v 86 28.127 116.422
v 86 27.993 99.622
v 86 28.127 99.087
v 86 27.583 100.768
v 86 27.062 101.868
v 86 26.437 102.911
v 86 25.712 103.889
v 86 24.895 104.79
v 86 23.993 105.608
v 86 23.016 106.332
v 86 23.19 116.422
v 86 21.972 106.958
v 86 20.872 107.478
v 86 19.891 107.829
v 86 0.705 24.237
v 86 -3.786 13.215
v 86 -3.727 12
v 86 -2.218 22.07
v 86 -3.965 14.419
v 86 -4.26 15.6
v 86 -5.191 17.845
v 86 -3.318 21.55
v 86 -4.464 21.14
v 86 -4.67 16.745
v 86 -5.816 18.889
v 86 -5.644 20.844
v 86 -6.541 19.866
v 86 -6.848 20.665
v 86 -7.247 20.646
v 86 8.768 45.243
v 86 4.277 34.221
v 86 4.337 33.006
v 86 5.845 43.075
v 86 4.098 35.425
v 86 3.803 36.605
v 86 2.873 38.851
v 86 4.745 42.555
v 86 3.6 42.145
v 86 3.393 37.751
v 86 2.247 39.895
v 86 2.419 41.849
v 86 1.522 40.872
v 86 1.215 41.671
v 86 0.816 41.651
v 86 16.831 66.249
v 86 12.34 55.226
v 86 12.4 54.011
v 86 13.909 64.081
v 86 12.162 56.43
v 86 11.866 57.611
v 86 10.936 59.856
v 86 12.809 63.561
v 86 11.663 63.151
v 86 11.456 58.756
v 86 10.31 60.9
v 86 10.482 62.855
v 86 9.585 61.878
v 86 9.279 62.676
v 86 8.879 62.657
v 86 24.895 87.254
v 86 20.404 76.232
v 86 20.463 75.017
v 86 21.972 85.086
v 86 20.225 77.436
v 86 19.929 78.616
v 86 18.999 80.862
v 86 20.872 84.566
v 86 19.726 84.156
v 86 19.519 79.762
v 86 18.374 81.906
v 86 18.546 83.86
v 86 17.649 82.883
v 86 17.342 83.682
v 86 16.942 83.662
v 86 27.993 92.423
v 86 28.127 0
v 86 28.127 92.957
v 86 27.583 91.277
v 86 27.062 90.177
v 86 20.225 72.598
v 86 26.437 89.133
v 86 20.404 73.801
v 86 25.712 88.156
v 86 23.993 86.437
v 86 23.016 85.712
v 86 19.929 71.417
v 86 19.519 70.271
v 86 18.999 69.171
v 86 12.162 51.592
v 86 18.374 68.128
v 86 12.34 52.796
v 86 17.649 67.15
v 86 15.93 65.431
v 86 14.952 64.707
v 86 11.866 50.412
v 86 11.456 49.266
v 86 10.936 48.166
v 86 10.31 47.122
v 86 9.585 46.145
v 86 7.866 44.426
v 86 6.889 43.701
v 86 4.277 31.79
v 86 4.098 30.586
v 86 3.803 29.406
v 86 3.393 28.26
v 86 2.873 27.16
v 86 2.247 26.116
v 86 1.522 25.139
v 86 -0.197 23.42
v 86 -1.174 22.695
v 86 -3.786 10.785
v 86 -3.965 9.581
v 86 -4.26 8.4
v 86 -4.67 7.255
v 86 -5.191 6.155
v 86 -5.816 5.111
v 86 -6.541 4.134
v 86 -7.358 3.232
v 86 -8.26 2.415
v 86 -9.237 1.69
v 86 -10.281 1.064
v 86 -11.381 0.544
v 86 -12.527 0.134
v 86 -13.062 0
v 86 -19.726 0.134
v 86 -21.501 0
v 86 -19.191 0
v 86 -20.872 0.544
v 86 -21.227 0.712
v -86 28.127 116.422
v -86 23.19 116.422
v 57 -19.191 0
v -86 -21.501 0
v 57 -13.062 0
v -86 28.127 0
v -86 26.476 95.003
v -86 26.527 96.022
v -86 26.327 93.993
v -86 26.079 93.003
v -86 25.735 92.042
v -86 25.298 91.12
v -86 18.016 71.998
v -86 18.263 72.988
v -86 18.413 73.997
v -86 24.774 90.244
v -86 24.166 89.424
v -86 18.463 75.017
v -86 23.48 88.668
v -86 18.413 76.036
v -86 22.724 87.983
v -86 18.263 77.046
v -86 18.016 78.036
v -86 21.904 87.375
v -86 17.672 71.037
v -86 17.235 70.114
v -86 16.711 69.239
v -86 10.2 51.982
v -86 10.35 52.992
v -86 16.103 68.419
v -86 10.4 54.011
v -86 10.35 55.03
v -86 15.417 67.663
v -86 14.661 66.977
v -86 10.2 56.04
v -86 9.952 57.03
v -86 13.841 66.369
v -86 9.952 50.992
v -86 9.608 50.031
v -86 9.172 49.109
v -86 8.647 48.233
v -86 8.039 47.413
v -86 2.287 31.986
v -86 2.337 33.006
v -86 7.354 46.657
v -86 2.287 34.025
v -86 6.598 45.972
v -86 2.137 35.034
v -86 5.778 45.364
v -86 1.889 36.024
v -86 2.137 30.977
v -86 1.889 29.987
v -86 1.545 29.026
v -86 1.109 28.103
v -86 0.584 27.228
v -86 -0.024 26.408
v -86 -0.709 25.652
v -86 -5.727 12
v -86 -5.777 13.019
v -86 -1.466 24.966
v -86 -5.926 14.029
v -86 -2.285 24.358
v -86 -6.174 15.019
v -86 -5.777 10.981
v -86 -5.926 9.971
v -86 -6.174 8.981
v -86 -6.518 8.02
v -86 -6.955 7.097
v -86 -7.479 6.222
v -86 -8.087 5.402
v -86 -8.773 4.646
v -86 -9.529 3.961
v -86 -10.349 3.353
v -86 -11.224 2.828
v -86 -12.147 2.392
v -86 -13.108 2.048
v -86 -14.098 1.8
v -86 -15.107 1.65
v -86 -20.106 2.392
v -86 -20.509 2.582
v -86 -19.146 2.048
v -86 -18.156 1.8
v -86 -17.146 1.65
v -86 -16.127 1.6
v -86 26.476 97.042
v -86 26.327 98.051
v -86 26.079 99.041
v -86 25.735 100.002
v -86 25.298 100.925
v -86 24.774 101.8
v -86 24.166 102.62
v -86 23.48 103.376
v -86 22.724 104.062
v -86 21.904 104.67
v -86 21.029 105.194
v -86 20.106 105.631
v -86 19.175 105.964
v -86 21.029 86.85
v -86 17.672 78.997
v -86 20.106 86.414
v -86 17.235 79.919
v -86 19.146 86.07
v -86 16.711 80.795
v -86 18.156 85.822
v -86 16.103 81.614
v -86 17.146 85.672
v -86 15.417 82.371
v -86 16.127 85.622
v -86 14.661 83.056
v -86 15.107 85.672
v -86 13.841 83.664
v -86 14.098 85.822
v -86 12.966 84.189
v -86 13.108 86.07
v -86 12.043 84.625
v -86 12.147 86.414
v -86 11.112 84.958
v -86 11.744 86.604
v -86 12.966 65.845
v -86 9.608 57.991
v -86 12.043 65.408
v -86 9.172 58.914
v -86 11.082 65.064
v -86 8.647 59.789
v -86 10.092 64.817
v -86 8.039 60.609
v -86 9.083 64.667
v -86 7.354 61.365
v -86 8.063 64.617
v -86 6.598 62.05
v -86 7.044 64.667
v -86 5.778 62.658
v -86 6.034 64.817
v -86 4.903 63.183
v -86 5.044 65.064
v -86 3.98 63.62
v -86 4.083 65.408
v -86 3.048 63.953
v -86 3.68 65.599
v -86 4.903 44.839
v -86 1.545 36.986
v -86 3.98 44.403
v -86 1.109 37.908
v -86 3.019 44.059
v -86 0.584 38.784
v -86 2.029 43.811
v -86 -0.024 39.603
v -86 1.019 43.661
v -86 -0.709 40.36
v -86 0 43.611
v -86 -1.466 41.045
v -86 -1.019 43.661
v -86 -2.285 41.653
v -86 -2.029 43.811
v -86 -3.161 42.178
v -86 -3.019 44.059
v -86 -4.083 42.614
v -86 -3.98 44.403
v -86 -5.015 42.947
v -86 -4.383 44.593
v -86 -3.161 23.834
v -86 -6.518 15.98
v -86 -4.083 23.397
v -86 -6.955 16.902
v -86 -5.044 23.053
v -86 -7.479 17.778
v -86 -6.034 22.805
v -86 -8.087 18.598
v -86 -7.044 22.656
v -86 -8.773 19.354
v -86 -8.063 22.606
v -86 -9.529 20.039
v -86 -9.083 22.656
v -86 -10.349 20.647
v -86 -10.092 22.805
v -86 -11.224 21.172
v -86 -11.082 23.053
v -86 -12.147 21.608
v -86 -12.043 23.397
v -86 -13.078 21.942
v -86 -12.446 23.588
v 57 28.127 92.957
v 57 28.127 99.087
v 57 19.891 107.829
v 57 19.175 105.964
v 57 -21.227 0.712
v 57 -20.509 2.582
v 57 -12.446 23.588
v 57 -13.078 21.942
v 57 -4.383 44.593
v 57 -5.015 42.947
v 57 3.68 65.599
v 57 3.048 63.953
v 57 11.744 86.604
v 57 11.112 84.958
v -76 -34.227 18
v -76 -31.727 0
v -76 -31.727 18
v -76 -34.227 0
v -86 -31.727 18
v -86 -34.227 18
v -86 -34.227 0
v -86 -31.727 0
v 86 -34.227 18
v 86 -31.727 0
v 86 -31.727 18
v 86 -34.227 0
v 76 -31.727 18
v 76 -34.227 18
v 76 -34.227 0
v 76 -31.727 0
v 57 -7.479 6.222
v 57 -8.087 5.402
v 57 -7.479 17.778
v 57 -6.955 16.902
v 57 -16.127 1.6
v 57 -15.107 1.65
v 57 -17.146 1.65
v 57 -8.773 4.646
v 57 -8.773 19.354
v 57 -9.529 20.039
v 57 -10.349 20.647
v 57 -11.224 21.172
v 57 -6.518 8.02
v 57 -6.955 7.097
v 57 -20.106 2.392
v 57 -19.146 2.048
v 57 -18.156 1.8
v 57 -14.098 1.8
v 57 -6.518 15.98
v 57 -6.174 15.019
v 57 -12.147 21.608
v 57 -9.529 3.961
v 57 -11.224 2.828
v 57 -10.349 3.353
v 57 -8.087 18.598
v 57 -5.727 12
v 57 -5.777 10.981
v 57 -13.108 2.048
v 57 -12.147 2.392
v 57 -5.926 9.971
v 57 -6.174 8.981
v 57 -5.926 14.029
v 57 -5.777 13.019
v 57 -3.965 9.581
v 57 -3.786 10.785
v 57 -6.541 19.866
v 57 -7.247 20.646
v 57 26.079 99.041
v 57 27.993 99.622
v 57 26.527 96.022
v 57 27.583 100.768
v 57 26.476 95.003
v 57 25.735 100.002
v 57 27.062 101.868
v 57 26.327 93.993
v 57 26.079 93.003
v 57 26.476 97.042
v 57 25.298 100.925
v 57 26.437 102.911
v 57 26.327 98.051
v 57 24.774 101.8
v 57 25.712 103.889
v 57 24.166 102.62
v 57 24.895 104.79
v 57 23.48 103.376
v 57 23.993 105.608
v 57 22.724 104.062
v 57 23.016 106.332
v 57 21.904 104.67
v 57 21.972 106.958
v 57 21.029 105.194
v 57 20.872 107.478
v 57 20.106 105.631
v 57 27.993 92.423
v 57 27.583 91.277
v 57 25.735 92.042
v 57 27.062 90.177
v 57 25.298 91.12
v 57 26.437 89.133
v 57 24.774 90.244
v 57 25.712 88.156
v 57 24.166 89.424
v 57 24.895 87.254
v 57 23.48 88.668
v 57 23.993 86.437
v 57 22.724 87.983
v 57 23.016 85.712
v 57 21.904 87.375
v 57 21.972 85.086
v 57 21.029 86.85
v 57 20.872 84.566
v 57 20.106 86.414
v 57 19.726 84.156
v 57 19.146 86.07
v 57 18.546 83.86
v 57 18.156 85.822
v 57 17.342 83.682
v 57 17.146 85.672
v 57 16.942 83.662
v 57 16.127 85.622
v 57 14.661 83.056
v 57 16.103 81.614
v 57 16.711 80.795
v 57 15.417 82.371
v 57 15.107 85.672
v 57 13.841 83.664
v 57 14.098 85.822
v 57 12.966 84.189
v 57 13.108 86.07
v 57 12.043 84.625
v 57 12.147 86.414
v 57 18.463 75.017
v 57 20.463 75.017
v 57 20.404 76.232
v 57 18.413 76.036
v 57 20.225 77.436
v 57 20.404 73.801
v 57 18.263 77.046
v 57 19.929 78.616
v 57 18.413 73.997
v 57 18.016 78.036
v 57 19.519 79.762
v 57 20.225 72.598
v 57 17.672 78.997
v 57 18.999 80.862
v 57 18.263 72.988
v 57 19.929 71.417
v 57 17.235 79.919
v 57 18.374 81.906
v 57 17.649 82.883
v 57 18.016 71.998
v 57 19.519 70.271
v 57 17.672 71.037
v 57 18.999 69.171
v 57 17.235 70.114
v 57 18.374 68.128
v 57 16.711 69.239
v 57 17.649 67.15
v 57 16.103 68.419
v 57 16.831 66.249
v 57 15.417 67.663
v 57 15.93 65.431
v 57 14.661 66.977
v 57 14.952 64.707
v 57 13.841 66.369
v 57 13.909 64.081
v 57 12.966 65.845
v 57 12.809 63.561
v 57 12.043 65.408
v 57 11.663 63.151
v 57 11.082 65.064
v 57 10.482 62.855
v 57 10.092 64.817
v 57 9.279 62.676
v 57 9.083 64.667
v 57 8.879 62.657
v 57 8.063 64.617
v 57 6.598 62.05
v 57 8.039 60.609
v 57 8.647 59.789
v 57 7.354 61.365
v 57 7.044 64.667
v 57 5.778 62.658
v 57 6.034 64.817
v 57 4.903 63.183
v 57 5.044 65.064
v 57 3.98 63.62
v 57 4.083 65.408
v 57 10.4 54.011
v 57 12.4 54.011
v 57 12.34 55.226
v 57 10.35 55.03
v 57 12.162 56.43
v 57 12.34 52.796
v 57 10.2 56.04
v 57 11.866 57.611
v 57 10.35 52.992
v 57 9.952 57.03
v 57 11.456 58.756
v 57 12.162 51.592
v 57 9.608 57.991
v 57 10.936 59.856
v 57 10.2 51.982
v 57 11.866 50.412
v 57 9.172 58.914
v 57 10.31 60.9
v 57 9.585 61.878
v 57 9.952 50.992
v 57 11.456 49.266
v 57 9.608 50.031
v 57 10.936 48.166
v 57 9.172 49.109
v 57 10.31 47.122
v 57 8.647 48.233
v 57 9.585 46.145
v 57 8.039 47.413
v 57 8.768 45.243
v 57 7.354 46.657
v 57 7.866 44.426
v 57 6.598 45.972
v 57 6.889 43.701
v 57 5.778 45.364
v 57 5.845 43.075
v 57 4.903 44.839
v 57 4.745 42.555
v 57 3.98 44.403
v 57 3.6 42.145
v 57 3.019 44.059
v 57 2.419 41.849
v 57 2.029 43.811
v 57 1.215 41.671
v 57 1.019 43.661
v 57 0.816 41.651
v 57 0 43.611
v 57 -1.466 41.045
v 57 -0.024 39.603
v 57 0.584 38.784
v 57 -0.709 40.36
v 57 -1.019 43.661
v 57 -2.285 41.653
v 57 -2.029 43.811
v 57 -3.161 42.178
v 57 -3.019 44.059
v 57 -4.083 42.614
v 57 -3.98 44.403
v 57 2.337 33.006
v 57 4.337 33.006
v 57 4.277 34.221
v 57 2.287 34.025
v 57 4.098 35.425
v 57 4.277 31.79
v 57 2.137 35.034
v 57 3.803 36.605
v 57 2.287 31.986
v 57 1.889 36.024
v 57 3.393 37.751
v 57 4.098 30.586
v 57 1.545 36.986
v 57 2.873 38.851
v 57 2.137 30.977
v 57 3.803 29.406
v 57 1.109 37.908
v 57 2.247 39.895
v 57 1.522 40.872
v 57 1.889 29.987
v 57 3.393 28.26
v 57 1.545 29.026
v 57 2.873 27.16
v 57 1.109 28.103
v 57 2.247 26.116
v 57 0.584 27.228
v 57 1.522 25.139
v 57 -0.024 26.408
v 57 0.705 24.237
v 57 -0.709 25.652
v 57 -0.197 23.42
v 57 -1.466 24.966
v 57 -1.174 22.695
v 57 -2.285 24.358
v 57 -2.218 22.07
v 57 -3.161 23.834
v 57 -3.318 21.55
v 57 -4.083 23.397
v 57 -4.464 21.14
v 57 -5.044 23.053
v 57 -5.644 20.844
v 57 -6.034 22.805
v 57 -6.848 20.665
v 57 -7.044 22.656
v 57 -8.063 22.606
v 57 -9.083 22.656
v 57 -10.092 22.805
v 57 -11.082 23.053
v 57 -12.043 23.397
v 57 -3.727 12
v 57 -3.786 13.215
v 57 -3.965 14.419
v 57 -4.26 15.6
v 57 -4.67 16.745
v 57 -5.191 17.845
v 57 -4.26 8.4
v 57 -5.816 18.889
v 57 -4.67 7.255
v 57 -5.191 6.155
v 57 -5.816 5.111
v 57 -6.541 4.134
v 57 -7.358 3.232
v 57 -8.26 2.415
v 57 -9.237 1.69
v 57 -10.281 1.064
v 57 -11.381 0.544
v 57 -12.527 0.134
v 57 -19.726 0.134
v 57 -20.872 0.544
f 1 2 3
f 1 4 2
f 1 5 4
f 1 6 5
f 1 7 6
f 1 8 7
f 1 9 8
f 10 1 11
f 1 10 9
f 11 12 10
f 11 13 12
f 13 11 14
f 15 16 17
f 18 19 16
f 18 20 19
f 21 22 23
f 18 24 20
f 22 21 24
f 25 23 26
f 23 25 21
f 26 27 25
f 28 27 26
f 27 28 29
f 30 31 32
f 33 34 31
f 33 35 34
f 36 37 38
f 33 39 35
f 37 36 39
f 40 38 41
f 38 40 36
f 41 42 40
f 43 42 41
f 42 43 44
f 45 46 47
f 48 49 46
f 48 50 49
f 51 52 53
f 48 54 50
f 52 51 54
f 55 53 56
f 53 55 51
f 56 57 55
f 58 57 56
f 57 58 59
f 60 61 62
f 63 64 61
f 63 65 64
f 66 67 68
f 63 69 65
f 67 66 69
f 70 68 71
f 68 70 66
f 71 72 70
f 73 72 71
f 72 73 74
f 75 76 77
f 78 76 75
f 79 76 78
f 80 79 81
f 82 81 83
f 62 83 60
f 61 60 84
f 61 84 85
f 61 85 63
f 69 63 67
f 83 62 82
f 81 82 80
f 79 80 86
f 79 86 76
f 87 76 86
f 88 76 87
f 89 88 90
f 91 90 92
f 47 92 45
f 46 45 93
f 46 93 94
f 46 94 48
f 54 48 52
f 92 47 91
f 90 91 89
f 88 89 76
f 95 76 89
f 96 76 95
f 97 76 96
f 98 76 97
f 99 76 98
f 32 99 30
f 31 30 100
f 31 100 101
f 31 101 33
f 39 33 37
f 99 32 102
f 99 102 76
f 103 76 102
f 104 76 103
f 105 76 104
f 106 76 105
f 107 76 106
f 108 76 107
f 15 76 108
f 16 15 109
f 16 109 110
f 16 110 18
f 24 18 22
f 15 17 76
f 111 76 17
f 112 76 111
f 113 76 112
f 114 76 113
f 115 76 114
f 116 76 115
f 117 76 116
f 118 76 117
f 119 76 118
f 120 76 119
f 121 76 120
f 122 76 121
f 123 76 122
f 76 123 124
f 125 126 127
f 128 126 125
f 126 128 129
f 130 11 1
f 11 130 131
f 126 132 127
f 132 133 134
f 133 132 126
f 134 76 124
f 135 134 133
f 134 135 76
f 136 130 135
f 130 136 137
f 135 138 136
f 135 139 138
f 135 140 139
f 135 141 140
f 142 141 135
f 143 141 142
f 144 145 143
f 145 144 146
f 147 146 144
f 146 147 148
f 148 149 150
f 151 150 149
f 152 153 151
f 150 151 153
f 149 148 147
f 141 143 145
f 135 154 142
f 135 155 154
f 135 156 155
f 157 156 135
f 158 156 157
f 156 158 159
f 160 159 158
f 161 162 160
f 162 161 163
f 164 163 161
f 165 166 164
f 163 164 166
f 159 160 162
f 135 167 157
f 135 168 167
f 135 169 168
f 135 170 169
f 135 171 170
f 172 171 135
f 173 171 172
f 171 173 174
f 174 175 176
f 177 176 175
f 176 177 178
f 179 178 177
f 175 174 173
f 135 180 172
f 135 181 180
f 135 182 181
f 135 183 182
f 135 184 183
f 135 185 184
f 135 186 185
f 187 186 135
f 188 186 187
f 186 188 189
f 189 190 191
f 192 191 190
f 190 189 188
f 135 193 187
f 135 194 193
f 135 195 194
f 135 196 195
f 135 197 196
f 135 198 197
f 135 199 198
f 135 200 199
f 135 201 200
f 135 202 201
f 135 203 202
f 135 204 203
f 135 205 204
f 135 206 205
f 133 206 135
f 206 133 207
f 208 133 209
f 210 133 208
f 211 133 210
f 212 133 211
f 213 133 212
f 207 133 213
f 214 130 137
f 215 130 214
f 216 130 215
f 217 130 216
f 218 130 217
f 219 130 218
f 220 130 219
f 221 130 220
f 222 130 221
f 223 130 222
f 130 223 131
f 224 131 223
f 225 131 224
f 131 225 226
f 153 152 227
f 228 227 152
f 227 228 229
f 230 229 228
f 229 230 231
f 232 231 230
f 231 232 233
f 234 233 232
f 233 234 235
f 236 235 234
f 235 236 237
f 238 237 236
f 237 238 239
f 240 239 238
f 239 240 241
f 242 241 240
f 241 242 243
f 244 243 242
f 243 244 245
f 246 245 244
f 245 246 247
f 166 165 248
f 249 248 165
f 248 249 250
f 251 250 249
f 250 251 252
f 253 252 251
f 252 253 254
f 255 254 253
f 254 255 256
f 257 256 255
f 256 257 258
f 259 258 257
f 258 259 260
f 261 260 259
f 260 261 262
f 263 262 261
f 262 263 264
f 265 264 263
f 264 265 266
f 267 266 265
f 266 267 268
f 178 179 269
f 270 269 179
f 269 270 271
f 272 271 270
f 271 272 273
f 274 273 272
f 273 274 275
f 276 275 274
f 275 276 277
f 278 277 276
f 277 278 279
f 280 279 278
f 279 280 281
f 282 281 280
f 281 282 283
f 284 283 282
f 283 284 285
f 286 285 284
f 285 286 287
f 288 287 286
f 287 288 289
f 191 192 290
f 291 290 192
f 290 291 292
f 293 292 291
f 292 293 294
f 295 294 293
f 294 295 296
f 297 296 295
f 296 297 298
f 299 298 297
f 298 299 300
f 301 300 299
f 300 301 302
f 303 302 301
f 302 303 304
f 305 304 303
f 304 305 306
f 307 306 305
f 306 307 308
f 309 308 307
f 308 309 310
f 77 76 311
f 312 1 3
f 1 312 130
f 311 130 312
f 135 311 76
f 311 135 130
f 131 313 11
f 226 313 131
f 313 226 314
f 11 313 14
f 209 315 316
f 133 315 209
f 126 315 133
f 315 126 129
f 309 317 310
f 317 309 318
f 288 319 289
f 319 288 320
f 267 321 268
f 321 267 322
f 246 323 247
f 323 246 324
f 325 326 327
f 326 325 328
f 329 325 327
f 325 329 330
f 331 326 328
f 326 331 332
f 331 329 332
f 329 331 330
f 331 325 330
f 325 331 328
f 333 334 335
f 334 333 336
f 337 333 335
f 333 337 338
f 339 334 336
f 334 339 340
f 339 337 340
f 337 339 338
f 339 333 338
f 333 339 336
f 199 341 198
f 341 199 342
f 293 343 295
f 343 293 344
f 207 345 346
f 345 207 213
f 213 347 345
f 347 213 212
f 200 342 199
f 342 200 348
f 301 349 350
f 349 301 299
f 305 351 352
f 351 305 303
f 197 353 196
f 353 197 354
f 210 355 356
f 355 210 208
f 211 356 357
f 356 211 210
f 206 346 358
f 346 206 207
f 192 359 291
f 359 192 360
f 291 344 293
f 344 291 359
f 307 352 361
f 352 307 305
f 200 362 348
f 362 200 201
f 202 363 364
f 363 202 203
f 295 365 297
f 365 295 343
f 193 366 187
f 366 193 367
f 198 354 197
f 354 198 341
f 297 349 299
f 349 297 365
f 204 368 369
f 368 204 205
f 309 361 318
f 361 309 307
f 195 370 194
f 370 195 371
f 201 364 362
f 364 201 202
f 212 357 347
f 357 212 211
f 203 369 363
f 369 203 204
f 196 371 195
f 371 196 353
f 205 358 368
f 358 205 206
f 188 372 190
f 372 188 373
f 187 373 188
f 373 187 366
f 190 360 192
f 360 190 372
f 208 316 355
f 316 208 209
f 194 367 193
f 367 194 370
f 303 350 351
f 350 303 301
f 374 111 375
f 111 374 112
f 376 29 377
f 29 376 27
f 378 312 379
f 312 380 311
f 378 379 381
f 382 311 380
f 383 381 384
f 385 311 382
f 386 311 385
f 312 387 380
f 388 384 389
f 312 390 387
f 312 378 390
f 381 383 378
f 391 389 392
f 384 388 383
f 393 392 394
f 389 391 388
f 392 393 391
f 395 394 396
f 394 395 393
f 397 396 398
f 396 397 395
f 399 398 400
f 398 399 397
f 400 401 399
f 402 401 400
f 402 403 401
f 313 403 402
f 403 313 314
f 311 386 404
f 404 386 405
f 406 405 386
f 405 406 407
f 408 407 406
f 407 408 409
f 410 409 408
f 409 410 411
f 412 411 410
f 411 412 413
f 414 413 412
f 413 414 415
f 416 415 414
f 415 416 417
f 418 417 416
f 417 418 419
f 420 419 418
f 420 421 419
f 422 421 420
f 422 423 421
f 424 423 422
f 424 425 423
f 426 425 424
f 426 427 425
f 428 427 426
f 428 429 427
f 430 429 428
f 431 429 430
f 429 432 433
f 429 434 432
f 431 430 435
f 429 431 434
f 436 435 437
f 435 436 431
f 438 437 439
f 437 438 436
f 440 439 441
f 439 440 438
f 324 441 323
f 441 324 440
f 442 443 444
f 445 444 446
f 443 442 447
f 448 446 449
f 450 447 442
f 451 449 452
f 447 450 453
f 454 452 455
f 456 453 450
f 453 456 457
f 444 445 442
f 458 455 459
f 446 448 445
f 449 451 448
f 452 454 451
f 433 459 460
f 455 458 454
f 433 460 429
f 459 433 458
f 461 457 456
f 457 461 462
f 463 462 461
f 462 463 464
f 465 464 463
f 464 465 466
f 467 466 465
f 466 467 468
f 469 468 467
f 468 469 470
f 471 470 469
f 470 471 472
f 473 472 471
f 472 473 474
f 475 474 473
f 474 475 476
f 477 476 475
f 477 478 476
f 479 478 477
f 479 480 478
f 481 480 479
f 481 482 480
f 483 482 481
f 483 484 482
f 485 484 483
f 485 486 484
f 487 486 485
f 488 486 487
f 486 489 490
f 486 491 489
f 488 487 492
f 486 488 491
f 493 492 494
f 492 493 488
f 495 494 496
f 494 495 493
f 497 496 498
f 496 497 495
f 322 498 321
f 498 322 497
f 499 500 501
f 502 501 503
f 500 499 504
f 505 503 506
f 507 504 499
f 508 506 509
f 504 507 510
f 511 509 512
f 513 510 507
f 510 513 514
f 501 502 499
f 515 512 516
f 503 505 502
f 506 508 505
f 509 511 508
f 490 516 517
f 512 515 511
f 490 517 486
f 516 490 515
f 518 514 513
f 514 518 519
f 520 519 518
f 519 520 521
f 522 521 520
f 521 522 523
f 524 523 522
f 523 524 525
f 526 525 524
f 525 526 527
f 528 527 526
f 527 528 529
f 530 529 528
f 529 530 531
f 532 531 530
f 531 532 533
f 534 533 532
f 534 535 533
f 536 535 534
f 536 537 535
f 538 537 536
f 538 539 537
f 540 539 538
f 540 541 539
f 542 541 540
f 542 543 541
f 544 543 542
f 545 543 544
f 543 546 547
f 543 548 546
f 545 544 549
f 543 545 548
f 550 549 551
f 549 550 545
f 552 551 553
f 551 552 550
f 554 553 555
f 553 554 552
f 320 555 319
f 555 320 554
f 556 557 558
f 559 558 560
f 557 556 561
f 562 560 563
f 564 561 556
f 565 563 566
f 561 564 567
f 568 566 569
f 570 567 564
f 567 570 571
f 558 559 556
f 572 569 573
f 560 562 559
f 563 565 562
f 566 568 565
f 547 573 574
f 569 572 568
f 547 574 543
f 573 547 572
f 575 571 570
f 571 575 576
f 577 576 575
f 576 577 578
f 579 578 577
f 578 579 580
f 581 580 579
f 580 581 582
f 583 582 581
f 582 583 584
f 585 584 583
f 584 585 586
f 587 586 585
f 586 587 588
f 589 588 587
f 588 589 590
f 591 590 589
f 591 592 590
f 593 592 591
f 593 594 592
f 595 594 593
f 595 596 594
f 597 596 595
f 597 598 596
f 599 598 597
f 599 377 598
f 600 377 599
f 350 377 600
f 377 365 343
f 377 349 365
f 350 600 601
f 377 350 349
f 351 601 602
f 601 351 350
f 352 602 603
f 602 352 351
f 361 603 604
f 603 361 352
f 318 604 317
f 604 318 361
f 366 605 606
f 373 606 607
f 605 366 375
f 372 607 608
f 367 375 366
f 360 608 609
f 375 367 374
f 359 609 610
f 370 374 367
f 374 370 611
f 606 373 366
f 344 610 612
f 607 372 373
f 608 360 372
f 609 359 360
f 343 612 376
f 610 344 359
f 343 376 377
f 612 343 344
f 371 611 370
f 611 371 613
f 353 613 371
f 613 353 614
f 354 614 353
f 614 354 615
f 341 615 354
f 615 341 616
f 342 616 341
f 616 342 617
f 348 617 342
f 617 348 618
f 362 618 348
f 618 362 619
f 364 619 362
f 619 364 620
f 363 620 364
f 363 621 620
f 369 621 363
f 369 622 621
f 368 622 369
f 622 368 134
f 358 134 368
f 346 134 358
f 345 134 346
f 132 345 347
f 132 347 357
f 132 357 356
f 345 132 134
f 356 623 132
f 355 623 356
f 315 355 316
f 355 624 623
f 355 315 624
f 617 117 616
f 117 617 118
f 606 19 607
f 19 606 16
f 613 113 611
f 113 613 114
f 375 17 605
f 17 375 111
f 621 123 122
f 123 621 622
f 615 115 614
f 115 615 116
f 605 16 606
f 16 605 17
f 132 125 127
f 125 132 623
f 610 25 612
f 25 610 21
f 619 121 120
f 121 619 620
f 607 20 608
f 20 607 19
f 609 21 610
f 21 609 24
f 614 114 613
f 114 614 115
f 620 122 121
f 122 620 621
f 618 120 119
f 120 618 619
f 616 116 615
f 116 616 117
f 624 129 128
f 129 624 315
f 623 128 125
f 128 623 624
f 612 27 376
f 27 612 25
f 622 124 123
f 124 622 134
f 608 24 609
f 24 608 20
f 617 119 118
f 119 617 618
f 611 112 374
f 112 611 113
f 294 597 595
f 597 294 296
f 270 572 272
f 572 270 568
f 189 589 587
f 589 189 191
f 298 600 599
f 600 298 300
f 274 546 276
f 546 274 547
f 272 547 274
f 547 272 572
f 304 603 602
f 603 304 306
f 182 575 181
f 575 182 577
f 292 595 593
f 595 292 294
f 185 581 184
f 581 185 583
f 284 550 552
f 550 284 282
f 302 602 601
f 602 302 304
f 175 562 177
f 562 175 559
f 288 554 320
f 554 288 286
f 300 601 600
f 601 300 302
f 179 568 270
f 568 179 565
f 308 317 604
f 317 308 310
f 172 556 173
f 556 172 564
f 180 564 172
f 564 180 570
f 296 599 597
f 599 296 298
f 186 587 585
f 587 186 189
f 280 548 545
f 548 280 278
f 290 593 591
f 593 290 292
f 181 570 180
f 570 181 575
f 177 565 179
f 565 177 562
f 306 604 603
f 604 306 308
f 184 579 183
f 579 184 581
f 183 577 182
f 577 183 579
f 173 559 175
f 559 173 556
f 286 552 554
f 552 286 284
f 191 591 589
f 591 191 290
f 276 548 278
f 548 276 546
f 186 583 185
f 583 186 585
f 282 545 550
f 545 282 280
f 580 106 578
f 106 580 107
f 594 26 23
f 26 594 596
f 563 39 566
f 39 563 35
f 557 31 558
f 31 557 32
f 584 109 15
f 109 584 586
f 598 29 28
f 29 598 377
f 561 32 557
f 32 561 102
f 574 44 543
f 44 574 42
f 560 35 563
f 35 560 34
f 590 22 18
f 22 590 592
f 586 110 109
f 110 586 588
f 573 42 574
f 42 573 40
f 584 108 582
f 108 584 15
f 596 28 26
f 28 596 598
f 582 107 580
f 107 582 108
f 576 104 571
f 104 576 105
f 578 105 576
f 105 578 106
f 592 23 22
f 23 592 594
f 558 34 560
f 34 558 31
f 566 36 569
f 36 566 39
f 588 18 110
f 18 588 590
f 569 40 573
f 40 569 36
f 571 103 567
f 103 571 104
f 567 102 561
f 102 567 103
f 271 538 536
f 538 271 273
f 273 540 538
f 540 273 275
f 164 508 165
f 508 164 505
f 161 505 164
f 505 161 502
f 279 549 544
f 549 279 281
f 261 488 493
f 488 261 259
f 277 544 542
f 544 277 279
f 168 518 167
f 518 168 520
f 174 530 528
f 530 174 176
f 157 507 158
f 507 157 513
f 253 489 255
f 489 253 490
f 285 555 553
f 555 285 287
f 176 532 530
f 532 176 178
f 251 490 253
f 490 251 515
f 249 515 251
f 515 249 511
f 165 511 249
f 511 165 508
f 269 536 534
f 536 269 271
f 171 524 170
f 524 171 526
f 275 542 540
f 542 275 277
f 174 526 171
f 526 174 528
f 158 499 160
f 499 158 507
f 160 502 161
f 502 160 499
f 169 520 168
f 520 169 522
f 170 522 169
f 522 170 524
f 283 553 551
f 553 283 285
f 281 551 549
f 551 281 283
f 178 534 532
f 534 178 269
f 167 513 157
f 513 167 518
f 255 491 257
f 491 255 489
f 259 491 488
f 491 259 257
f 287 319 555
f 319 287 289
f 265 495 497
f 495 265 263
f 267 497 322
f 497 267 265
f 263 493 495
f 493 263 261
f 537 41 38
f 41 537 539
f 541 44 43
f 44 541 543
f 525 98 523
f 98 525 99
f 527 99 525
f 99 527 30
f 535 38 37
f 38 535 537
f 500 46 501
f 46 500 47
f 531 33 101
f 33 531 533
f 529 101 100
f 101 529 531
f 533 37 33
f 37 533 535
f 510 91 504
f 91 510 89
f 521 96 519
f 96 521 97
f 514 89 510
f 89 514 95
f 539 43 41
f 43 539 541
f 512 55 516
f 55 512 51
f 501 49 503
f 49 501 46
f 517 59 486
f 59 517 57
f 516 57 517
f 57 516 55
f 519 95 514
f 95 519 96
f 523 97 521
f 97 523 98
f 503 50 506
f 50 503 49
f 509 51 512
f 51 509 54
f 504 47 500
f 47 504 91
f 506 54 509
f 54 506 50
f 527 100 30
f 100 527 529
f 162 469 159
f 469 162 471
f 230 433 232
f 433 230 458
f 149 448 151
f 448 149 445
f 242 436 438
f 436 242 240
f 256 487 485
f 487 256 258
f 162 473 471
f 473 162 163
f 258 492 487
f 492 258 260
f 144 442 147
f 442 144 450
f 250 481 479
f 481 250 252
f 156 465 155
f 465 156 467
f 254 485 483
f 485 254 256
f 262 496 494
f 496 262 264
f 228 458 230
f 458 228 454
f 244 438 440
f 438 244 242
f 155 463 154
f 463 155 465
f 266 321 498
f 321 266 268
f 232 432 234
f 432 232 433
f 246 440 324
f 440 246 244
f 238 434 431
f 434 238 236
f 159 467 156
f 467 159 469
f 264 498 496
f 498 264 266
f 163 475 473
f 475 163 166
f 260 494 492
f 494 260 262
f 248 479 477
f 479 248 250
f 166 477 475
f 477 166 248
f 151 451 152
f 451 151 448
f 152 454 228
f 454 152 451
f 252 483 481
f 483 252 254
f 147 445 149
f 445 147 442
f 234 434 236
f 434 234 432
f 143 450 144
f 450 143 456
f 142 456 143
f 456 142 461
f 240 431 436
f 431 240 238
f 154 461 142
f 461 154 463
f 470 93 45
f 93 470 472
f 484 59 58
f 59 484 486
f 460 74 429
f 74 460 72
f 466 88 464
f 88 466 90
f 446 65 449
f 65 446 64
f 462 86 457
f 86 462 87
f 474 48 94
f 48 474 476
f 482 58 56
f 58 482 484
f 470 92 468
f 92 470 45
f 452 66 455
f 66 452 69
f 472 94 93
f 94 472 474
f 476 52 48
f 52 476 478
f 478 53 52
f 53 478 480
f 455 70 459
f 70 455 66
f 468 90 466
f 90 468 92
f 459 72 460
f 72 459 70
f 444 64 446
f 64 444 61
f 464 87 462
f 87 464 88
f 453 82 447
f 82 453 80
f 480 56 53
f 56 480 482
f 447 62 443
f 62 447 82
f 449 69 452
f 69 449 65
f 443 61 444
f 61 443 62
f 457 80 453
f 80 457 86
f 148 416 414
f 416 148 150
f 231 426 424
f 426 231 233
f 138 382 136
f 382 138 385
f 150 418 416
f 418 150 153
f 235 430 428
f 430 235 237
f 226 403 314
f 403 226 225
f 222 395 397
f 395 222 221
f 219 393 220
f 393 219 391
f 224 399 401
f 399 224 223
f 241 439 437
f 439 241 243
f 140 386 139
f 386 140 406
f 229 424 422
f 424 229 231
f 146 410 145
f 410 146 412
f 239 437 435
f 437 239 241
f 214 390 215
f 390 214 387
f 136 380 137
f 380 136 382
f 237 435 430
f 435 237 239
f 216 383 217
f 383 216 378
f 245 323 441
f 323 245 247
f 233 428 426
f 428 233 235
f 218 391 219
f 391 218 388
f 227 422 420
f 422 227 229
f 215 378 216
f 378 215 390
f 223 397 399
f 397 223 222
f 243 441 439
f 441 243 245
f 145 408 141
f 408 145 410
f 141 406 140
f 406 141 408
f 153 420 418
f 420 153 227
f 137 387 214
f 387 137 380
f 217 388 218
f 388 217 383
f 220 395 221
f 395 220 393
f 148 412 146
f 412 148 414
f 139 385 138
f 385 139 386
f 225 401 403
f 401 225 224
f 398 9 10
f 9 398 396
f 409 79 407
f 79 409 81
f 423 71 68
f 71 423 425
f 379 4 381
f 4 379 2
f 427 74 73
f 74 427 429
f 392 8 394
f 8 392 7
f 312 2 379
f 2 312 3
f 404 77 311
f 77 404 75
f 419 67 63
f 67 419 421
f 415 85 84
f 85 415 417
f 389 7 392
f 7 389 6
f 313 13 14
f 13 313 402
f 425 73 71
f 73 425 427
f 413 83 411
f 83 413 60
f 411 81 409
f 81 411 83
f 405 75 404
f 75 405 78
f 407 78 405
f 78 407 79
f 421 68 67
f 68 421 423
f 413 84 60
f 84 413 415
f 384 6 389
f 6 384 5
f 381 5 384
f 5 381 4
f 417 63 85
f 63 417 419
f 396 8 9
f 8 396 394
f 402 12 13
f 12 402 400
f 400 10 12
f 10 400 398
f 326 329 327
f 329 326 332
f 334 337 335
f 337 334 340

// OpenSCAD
// file: common.scad
// ============================================================
// common.scad — shared parameters + modules for all designs
// LOCKED PEN SPECIFICATION (do not change)
// ============================================================
PEN_L = 165;      // pen length (mm)
PEN_A = 17;       // pen cross-section minor
PEN_B = 20;       // pen cross-section major (used as diameter envelope)
CLEAR = 0.4;      // fit clearance
WALL  = 1.6;      // minimum wall thickness

$fn = 64;

RCH = PEN_B/2 + CLEAR;   // = 10.4  channel radius
EPS = 0.01;

// --- open-top U trough cut, axis along X, centered at local origin -----------
// Removes a lower half-cylinder of radius r plus a full-width vertical slot
// upward, so the channel is open at the top (no ceiling -> no overhang).
module trough_cut(len, r=RCH, top=80) {
    union() {
        rotate([0,90,0]) cylinder(h=len, r=r, center=true);
        translate([0,0,top/2]) cube([len, 2*r, top], center=true); // slot upward
    }
}

// --- teardrop hole, axis along X, centered at local origin --------------------
// 45-degree self-supporting apex pointing +Z so a horizontal bore can print
// without support.
module teardrop_cut(len, r=RCH) {
    rotate([0,90,0])
        linear_extrude(height=len, center=true)
            union() {
                circle(r=r);
                polygon([[ 0.7071*r, 0.7071*r],
                         [ 0,         1.4142*r],
                         [-0.7071*r,  0.7071*r]]);
            }
}

// --- dial relief: widened open-top pocket at one channel end -----------------
// place at the +X or -X end of a channel so the dose dial clears / can be turned
module dial_relief(end_x, r=RCH+2.2, len=28, top=80) {
    translate([end_x, 0, 0]) trough_cut(len, r, top);
}
// file: gate_lib.scad
// gate_lib.scad — two-part front-removable rack: open cradle BODY + lift-off GATE
// The body is a reclined ramp with open grooves; pens pull straight out the
// front. A slim gate drops into a catch at each end and spans the front, blocking
// the pens until you lift it off. Everything is a loose/positive fit -> nothing
// tolerance-critical, no snap, no test print.
include <common.scad>

LBLK = PEN_L + 7;     // 172 body length
GTH  = 3.0;           // gate thickness
GCL  = 0.6;           // generous clearance for the gate-to-catch fit
TABW = 10;            // gate end-tab width (along X)

// ---- shared layout ---------------------------------------------------------
function _yc(n,P,phi,i) = (-(n-1)/2 + i) * P * cos(phi);
function _zc(n,P,phi,i) = (WALL + RCH) + i * P * sin(phi);
function _ymn(n,P,phi)  = _yc(n,P,phi,0)   - RCH - WALL;
function _ymx(n,P,phi)  = _yc(n,P,phi,n-1) + RCH + WALL;
function _Hb(n,P,phi)   = _zc(n,P,phi,n-1) + RCH + 10;
// up-slope length of the ramp face (gate height when printed standing)
function _faceL(n,P)    = (n-1)*P + 2*RCH + 8;

// 2D teardrop (45deg apex toward +Y) for self-supporting windows
module _td2d(r) {
    union() {
        circle(r=r);
        polygon([[0.7071*r,0.7071*r],[0,1.4142*r],[-0.7071*r,0.7071*r]]);
    }
}

// ===================== BODY (prints in this orientation) ====================
module body(n=4, phi=52, P=22.5, lip=2.0, rr=RCH+2, rlen=34) {
    cph=cos(phi); sph=sin(phi);
    yc=[for(i=[0:n-1]) _yc(n,P,phi,i)];
    zc=[for(i=[0:n-1]) _zc(n,P,phi,i)];
    ymn=_ymn(n,P,phi); ymx=_ymx(n,P,phi);
    Wb=ymx-ymn; ycen=(ymx+ymn)/2; Hb=_Hb(n,P,phi);
    relief_cx=LBLK/2-12; big=800;
    cxtab = LBLK/2 - TABW/2;     // catch sits just inside each end

    difference() {
        union() {
            // sheared wedge
            difference() {
                translate([0,ycen,Hb/2]) cube([LBLK,Wb,Hb],center=true);
                translate([0,yc[0],zc[0]+lip]) rotate([phi,0,0])
                    translate([0,0,big/2]) cube([LBLK+2,big,big],center=true);
            }
            // two end CATCHES: posts at the front-bottom corners with an
            // up-slope-open pocket the gate end-tab drops into
            for (sx=[-1,1])
                translate([sx*cxtab, ymn - GTH - GCL, 0])
                    catch_post(phi);
        }
        // open grooves (pen pulls out the front) + dial relief
        for (i=[0:n-1]) {
            translate([0,yc[i],zc[i]]) rotate([0,90,0]) cylinder(h=LBLK+2,r=RCH,center=true);
            translate([relief_cx,yc[i],zc[i]]) rotate([0,90,0]) cylinder(h=rlen,r=rr,center=true);
        }
        // pocket inside each catch (the slot the gate tab sits in)
        for (sx=[-1,1])
            translate([sx*cxtab, ymn - GTH/2, 0])
                catch_slot();
    }
}

module catch_post(phi) {
    // a small block in front of the ramp toe, tall enough to hold the gate
    translate([0,0,18/2]) cube([TABW, GTH+2, 18], center=true);
}
module catch_slot() {
    // open-topped slot the gate end-tab drops into (loose fit)
    translate([0,0,30]) cube([TABW+2*GCL, GTH+2*GCL, 60], center=true);
}

// ===================== GATE (authored STANDING for printing) ================
// Printed as a thin upright wall: X = length, Z = ramp-face height, Y = thickness
module gate(n=4, phi=52, P=22.5, rwin=6.5) {
    faceL=_faceL(n,P);
    difference() {
        union() {
            // main panel
            translate([0,0,faceL/2]) cube([LBLK, GTH, faceL], center=true);
            // two end tabs that drop into the body catches (extend below panel)
            for (sx=[-1,1])
                translate([sx*(LBLK/2 - TABW/2), 0, -7])
                    cube([TABW, GTH, 16], center=true);
        }
        // grab windows aligned to each pen's up-slope position
        for (i=[0:n-1])
            translate([0, 0, RCH + 4 + i*P])
                rotate([90,0,0]) linear_extrude(height=GTH+2, center=true) _td2d(rwin);
    }
}
// main file
// f2 body — reclined open-cradle rack (5 pens), pull out the front.
include <gate_lib.scad>
body(n=5, phi=69, P=22.5);
